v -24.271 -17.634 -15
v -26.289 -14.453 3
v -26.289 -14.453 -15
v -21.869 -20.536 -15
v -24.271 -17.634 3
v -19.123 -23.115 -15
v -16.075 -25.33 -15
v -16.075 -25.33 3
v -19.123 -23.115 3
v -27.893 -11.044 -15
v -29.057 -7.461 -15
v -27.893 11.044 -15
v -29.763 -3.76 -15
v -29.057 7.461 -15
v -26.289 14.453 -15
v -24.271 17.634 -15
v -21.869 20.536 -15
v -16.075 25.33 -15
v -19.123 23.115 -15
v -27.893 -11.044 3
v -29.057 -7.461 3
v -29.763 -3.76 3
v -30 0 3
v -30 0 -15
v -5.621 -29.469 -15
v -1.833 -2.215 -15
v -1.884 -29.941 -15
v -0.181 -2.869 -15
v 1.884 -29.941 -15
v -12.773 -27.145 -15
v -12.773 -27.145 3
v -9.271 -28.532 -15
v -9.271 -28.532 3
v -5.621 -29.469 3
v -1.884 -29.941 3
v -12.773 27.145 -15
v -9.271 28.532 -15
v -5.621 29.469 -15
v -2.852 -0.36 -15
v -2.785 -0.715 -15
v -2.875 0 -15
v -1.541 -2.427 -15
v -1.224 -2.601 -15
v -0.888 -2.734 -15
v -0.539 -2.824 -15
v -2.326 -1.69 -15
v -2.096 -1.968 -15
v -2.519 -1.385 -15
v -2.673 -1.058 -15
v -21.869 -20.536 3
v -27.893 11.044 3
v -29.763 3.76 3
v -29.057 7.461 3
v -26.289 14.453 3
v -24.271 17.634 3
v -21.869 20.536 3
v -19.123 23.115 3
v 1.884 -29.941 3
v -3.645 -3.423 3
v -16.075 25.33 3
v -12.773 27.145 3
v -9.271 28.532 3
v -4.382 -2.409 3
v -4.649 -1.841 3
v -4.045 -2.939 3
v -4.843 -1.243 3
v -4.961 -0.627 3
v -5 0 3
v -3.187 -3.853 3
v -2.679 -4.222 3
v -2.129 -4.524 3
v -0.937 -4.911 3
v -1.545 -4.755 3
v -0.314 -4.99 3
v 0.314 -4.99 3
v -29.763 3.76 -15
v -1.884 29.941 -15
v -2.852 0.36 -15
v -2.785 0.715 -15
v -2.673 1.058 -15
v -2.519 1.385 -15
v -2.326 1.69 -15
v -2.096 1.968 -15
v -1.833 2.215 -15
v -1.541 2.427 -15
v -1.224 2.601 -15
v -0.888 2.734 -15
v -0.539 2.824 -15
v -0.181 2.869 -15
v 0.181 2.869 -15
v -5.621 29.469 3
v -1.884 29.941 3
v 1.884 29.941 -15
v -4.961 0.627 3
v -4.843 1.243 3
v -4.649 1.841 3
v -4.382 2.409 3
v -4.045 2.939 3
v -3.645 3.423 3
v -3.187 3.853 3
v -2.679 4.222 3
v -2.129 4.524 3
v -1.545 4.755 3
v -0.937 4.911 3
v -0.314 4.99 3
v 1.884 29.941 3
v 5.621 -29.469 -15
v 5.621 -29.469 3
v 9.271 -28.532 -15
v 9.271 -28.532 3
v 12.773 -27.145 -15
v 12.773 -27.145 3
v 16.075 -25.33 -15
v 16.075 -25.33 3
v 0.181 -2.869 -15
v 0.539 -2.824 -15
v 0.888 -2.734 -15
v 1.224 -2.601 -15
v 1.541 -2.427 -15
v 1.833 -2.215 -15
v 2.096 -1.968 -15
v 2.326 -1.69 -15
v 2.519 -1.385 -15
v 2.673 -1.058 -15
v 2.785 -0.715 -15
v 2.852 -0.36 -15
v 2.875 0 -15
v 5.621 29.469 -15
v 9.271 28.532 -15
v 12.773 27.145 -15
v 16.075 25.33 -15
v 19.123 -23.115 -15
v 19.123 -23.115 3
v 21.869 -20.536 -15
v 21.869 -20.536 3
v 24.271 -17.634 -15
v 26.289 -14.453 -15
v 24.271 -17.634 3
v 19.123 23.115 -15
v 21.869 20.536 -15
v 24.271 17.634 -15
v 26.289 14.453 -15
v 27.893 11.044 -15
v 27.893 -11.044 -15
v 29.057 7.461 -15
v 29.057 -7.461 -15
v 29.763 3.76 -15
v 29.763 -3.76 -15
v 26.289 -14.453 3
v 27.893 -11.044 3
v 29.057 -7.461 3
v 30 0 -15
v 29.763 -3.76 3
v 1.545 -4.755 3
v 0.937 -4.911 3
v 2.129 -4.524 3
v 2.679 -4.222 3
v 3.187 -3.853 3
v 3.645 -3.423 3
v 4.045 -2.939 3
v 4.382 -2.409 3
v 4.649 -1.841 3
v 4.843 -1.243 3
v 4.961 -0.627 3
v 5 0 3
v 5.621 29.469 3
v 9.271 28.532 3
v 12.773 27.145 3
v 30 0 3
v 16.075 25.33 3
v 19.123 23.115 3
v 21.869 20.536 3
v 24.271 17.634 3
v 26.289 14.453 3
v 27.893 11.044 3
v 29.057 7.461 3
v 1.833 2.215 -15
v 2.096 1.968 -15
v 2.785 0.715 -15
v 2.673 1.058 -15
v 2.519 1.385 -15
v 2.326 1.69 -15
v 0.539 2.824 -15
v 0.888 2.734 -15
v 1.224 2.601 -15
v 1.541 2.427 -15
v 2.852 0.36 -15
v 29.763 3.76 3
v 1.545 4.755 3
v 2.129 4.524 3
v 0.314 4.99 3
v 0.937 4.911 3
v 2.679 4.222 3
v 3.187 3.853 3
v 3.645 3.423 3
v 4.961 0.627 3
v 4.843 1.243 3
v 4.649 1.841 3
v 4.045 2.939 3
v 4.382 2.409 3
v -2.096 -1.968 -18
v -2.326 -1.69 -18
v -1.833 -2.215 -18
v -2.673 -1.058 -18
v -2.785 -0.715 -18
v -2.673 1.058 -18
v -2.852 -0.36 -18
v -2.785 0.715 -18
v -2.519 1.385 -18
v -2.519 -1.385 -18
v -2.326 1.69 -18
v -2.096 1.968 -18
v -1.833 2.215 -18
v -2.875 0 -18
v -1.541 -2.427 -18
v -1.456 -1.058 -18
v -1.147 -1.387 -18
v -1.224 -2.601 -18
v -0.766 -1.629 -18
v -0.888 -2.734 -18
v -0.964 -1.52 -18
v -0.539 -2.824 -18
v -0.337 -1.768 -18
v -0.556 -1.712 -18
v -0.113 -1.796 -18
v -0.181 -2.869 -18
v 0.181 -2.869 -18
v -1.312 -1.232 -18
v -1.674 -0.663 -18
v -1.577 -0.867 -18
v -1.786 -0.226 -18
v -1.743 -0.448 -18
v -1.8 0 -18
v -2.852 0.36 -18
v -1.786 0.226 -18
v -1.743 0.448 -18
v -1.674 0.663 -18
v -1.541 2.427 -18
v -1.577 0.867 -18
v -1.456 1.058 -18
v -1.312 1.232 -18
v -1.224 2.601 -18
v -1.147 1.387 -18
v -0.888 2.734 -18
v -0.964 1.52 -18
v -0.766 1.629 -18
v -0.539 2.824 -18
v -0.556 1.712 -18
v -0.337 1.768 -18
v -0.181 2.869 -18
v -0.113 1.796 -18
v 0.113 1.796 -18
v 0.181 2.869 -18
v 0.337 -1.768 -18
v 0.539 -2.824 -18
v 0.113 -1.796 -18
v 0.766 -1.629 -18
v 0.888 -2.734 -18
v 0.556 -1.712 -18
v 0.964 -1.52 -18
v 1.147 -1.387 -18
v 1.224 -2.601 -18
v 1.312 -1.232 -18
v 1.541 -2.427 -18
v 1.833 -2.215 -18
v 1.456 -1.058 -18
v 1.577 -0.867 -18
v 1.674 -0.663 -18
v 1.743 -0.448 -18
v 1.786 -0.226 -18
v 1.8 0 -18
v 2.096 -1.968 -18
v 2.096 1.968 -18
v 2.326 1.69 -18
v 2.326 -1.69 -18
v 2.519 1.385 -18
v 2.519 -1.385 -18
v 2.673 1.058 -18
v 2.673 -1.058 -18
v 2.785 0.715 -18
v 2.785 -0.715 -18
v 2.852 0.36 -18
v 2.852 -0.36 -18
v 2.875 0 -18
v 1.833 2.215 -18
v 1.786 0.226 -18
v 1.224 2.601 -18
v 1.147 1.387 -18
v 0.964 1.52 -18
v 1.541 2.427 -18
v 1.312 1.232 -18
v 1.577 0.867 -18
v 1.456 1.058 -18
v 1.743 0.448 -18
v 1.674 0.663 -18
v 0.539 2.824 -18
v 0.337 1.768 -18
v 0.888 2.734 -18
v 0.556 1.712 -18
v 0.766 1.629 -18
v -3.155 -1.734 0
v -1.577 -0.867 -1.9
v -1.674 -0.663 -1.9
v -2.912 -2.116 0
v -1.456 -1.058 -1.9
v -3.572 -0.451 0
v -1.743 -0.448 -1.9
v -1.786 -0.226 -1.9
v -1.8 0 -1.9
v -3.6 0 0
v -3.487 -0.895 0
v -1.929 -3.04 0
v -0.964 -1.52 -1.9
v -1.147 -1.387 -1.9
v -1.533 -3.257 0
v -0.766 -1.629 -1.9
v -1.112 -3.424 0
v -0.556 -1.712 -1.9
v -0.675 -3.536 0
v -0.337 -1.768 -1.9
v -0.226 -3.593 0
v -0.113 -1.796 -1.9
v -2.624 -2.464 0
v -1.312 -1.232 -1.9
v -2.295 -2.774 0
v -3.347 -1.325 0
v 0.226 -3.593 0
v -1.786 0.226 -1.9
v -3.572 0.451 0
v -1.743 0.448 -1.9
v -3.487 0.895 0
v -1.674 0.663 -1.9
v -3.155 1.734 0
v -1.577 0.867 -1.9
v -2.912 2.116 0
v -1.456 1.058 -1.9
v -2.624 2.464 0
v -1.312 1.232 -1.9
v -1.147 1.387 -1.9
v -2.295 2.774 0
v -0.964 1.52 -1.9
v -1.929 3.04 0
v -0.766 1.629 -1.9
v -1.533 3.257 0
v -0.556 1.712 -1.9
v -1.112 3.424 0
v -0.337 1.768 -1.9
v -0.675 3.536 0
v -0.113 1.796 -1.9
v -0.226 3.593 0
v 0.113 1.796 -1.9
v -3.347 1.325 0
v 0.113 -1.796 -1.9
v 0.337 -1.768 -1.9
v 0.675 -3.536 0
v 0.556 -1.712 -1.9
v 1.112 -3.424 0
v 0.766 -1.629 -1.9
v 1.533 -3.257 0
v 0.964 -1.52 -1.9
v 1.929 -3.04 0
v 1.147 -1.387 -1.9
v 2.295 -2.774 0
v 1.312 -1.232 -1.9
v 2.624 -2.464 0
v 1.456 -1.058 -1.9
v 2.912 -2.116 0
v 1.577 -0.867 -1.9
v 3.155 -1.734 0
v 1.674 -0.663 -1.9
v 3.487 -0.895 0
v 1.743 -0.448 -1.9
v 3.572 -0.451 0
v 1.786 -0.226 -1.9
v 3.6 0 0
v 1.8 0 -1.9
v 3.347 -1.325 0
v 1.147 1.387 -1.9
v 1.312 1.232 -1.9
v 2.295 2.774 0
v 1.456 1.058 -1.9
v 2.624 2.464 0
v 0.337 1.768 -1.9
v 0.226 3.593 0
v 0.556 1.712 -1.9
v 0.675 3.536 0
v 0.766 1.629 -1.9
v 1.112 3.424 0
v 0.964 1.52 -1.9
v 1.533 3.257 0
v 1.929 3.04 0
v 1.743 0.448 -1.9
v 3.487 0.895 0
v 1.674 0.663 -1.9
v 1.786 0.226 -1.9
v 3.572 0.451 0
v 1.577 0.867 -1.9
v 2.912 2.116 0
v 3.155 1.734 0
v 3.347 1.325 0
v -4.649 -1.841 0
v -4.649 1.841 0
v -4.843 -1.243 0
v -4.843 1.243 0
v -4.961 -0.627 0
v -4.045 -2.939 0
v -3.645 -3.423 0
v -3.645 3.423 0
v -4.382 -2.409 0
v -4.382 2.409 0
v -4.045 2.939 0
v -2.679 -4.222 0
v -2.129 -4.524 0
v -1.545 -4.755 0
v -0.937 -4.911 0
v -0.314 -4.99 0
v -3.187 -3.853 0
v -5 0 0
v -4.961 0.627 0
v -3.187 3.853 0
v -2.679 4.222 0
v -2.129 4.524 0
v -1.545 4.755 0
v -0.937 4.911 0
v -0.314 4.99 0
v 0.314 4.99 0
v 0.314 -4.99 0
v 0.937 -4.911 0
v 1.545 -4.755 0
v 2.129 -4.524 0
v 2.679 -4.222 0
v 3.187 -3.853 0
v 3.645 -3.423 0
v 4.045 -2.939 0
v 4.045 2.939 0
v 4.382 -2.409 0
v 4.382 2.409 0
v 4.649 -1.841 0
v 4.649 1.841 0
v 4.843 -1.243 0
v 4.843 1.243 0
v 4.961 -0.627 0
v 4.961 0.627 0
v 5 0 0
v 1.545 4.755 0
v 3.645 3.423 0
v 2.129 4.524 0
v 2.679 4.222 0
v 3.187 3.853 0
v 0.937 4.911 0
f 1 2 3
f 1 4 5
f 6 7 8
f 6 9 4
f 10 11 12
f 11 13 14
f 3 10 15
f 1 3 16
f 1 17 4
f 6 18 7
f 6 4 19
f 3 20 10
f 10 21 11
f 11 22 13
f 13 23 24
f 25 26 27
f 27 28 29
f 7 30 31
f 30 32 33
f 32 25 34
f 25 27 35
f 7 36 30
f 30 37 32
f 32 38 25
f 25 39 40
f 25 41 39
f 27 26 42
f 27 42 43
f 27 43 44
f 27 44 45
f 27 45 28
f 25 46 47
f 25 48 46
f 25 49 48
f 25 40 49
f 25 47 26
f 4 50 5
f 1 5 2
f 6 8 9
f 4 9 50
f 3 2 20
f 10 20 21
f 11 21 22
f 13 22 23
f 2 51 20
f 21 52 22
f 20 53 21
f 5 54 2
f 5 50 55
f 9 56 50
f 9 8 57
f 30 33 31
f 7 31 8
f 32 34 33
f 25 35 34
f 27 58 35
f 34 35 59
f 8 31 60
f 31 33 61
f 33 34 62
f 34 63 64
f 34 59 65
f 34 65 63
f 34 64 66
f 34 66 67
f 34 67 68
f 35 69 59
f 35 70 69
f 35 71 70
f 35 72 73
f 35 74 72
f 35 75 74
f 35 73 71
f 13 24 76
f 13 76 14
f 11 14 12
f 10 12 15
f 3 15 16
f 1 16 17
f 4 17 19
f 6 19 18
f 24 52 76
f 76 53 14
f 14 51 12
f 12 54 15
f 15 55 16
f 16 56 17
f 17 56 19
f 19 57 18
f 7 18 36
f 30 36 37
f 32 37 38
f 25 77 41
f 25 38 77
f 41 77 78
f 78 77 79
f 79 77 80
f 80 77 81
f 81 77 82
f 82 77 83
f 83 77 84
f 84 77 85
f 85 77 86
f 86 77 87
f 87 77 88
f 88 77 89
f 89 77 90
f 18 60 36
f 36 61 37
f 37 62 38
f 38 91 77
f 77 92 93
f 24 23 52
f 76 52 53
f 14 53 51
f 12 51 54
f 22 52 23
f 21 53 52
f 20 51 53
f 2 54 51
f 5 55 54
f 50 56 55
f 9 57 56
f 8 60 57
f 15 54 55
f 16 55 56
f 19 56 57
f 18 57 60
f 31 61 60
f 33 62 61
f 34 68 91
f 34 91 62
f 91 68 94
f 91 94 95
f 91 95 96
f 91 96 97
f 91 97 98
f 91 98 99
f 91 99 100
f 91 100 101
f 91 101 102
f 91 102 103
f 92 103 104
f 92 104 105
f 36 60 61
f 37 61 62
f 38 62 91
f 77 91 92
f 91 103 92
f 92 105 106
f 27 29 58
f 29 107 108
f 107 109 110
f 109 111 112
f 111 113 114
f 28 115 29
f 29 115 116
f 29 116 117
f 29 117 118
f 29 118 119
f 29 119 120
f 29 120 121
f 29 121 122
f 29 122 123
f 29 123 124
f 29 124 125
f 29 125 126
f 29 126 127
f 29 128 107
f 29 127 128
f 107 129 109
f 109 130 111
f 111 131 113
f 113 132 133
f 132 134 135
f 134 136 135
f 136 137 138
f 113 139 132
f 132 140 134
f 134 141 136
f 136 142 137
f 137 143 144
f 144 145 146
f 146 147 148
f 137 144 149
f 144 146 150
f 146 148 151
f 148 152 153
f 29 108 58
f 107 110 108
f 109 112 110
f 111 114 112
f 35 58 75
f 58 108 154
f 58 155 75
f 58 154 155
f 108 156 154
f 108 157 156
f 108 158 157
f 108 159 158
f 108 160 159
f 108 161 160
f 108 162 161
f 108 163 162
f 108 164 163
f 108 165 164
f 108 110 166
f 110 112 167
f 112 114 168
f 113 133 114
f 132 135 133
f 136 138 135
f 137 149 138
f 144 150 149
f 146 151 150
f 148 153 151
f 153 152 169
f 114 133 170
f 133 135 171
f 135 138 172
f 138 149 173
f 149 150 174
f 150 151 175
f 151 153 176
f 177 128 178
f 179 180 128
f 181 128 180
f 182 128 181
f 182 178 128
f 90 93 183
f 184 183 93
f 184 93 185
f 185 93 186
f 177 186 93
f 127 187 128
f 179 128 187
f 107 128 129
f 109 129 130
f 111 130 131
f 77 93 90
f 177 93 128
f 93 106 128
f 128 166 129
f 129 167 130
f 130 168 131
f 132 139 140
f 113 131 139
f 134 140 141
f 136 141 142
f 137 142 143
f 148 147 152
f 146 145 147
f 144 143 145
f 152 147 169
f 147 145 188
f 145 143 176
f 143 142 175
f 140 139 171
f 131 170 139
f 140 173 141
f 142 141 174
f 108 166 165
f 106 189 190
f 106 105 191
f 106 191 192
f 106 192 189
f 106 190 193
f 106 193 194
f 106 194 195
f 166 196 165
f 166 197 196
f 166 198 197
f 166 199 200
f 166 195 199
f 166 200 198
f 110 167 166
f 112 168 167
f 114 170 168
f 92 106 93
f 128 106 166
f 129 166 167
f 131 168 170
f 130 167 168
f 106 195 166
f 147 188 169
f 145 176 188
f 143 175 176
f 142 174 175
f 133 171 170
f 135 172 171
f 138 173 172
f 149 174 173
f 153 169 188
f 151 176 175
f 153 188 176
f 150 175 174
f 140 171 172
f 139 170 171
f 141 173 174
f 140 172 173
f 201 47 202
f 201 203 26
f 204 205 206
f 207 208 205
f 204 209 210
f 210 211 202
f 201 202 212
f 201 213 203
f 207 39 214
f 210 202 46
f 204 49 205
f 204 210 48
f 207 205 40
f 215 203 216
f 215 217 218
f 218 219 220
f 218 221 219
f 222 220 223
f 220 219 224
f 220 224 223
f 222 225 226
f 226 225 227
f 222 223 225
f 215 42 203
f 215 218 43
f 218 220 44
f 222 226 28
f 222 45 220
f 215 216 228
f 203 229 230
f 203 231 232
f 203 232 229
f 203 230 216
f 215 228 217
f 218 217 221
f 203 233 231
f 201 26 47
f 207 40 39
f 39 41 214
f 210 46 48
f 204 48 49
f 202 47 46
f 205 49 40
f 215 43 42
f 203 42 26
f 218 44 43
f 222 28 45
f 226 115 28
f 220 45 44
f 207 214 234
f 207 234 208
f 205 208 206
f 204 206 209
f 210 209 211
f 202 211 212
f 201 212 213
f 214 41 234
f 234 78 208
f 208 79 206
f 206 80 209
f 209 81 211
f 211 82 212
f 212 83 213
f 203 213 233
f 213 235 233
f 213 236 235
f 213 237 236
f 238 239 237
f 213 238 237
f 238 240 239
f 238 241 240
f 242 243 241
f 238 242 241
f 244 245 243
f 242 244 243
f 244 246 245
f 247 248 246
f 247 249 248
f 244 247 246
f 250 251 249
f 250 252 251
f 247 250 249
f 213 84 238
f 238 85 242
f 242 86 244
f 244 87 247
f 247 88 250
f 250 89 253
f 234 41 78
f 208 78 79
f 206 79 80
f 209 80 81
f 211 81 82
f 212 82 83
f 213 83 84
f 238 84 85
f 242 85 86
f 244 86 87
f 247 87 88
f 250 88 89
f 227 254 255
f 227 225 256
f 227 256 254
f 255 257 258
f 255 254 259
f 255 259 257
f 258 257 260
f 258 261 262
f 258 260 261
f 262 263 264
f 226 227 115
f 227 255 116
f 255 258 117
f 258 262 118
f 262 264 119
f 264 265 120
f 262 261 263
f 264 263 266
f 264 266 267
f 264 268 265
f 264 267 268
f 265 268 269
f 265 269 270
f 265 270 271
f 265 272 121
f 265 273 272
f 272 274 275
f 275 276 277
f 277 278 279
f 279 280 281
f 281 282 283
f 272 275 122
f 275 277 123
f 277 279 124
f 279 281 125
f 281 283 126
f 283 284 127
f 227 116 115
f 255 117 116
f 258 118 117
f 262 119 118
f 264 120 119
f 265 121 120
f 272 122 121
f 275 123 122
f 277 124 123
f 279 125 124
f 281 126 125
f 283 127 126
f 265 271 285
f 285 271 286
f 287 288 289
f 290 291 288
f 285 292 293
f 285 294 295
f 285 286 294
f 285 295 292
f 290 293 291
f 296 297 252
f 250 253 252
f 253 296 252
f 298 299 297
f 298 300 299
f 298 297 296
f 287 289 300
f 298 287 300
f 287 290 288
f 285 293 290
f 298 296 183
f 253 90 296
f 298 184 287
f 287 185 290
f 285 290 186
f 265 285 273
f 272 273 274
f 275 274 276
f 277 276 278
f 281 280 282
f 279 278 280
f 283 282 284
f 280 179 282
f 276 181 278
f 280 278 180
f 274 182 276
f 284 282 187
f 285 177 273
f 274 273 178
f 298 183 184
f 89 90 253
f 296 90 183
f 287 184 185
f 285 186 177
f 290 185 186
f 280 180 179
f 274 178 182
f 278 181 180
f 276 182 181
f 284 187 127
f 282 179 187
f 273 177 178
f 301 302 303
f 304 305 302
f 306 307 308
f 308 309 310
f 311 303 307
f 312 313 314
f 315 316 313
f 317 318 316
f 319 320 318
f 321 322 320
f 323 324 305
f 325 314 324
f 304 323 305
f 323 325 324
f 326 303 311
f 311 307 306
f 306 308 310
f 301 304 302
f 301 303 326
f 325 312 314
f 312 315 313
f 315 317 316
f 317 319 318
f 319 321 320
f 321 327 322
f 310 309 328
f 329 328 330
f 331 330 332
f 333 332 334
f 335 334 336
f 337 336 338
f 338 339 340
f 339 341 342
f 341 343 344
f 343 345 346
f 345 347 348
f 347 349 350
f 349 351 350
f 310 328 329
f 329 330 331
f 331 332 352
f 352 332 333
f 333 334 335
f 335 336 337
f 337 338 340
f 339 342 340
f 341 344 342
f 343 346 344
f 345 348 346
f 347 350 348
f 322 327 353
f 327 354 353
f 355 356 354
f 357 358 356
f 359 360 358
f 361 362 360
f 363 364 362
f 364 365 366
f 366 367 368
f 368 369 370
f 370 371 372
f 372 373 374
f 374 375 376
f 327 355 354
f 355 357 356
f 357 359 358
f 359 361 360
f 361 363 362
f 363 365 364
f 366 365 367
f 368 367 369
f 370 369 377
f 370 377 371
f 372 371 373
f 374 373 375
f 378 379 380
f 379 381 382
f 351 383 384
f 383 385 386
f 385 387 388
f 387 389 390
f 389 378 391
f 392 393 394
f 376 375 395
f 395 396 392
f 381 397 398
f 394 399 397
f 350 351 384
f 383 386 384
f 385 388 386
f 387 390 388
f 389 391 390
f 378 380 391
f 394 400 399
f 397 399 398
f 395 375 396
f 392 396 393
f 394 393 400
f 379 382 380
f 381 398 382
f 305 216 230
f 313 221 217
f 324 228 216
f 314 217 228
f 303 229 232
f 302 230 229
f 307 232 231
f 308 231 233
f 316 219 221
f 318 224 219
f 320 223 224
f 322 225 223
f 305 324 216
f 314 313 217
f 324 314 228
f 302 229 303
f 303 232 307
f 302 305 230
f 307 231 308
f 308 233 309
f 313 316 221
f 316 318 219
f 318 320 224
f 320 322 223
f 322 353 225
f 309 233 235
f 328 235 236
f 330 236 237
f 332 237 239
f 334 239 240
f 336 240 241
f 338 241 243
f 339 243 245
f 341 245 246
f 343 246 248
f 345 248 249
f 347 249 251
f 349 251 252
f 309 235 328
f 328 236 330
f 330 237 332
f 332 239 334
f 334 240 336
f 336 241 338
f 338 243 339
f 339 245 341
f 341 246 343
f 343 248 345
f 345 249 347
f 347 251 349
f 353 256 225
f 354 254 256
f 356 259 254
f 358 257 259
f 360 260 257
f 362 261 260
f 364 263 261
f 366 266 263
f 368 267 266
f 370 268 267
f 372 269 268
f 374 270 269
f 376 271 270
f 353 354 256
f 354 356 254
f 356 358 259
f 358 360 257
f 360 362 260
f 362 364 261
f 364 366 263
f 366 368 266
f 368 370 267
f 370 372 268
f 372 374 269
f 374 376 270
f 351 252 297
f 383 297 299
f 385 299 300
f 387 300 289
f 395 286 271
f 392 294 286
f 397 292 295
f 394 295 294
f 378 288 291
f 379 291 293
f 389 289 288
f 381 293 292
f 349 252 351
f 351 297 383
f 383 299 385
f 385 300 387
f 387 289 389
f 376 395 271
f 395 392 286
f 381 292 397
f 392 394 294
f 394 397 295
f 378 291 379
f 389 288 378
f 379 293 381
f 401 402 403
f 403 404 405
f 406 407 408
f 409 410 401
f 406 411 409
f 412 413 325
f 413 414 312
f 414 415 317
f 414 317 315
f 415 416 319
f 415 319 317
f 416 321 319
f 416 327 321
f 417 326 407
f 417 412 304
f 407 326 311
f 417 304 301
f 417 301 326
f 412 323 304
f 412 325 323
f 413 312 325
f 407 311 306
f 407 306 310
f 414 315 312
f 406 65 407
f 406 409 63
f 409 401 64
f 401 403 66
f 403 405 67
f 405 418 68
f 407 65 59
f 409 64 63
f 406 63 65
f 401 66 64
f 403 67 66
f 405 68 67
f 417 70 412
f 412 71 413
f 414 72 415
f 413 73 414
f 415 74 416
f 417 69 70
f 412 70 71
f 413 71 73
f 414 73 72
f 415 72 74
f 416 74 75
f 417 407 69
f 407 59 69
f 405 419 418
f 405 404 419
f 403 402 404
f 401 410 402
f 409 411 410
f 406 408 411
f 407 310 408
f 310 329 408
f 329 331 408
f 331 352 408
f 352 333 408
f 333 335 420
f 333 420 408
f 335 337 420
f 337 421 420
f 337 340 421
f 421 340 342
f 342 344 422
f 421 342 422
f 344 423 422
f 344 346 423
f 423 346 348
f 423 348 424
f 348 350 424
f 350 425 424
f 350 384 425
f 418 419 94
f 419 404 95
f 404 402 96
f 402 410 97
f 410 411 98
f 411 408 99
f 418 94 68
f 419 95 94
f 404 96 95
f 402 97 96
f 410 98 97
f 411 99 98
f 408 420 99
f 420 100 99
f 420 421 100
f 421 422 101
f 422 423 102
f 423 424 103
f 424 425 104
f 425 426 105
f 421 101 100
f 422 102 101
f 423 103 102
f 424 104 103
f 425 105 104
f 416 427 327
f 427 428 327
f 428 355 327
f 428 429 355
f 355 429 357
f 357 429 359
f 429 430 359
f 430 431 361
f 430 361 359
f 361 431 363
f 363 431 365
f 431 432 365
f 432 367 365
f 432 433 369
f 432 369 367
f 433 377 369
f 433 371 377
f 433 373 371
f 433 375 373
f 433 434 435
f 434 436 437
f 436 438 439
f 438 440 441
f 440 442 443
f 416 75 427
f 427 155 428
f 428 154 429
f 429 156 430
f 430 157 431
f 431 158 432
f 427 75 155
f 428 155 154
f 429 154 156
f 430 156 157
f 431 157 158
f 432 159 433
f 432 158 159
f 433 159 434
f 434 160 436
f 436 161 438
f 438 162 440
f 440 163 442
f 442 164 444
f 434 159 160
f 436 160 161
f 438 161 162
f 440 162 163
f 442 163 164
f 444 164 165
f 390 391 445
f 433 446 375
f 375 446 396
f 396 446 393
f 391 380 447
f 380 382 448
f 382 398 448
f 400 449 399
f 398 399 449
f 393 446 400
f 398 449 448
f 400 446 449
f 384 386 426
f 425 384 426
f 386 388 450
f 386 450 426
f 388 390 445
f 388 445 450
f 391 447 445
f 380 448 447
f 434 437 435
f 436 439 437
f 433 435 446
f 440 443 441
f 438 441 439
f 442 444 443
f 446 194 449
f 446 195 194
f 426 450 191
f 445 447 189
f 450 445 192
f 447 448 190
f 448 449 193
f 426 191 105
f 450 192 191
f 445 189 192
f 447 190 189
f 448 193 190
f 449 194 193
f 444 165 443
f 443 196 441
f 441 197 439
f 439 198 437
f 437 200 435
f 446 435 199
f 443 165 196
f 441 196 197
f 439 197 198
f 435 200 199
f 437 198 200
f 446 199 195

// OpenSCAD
$fn = 50;

difference() {
	union() {
		translate(v = [0, 0, -15.0]) {
			cylinder(h = 18, r = 30.0);
		}
		#translate(v = [0, 0, -18.0]) {
			cylinder(h = 18, r = 2.875);
		}
	}
	union() {
		translate(v = [0, 0, 0]) {
			rotate(a = [0, 0, 0]) {
				difference() {
					union() {
						translate(v = [0, 0, -18.0]) {
							cylinder(h = 18, r = 1.5);
						}
						translate(v = [0, 0, -1.9]) {
							cylinder(h = 1.9, r1 = 1.8, r2 = 3.6);
						}
						translate(v = [0, 0, -18.0]) {
							cylinder(h = 18, r = 1.8);
						}
						translate(v = [0, 0, -18.0]) {
							cylinder(h = 18, r = 1.5);
						}
					}
					union();
				}
			}
		}
		#cylinder(h = 3, r = 5.0);
	}
}
